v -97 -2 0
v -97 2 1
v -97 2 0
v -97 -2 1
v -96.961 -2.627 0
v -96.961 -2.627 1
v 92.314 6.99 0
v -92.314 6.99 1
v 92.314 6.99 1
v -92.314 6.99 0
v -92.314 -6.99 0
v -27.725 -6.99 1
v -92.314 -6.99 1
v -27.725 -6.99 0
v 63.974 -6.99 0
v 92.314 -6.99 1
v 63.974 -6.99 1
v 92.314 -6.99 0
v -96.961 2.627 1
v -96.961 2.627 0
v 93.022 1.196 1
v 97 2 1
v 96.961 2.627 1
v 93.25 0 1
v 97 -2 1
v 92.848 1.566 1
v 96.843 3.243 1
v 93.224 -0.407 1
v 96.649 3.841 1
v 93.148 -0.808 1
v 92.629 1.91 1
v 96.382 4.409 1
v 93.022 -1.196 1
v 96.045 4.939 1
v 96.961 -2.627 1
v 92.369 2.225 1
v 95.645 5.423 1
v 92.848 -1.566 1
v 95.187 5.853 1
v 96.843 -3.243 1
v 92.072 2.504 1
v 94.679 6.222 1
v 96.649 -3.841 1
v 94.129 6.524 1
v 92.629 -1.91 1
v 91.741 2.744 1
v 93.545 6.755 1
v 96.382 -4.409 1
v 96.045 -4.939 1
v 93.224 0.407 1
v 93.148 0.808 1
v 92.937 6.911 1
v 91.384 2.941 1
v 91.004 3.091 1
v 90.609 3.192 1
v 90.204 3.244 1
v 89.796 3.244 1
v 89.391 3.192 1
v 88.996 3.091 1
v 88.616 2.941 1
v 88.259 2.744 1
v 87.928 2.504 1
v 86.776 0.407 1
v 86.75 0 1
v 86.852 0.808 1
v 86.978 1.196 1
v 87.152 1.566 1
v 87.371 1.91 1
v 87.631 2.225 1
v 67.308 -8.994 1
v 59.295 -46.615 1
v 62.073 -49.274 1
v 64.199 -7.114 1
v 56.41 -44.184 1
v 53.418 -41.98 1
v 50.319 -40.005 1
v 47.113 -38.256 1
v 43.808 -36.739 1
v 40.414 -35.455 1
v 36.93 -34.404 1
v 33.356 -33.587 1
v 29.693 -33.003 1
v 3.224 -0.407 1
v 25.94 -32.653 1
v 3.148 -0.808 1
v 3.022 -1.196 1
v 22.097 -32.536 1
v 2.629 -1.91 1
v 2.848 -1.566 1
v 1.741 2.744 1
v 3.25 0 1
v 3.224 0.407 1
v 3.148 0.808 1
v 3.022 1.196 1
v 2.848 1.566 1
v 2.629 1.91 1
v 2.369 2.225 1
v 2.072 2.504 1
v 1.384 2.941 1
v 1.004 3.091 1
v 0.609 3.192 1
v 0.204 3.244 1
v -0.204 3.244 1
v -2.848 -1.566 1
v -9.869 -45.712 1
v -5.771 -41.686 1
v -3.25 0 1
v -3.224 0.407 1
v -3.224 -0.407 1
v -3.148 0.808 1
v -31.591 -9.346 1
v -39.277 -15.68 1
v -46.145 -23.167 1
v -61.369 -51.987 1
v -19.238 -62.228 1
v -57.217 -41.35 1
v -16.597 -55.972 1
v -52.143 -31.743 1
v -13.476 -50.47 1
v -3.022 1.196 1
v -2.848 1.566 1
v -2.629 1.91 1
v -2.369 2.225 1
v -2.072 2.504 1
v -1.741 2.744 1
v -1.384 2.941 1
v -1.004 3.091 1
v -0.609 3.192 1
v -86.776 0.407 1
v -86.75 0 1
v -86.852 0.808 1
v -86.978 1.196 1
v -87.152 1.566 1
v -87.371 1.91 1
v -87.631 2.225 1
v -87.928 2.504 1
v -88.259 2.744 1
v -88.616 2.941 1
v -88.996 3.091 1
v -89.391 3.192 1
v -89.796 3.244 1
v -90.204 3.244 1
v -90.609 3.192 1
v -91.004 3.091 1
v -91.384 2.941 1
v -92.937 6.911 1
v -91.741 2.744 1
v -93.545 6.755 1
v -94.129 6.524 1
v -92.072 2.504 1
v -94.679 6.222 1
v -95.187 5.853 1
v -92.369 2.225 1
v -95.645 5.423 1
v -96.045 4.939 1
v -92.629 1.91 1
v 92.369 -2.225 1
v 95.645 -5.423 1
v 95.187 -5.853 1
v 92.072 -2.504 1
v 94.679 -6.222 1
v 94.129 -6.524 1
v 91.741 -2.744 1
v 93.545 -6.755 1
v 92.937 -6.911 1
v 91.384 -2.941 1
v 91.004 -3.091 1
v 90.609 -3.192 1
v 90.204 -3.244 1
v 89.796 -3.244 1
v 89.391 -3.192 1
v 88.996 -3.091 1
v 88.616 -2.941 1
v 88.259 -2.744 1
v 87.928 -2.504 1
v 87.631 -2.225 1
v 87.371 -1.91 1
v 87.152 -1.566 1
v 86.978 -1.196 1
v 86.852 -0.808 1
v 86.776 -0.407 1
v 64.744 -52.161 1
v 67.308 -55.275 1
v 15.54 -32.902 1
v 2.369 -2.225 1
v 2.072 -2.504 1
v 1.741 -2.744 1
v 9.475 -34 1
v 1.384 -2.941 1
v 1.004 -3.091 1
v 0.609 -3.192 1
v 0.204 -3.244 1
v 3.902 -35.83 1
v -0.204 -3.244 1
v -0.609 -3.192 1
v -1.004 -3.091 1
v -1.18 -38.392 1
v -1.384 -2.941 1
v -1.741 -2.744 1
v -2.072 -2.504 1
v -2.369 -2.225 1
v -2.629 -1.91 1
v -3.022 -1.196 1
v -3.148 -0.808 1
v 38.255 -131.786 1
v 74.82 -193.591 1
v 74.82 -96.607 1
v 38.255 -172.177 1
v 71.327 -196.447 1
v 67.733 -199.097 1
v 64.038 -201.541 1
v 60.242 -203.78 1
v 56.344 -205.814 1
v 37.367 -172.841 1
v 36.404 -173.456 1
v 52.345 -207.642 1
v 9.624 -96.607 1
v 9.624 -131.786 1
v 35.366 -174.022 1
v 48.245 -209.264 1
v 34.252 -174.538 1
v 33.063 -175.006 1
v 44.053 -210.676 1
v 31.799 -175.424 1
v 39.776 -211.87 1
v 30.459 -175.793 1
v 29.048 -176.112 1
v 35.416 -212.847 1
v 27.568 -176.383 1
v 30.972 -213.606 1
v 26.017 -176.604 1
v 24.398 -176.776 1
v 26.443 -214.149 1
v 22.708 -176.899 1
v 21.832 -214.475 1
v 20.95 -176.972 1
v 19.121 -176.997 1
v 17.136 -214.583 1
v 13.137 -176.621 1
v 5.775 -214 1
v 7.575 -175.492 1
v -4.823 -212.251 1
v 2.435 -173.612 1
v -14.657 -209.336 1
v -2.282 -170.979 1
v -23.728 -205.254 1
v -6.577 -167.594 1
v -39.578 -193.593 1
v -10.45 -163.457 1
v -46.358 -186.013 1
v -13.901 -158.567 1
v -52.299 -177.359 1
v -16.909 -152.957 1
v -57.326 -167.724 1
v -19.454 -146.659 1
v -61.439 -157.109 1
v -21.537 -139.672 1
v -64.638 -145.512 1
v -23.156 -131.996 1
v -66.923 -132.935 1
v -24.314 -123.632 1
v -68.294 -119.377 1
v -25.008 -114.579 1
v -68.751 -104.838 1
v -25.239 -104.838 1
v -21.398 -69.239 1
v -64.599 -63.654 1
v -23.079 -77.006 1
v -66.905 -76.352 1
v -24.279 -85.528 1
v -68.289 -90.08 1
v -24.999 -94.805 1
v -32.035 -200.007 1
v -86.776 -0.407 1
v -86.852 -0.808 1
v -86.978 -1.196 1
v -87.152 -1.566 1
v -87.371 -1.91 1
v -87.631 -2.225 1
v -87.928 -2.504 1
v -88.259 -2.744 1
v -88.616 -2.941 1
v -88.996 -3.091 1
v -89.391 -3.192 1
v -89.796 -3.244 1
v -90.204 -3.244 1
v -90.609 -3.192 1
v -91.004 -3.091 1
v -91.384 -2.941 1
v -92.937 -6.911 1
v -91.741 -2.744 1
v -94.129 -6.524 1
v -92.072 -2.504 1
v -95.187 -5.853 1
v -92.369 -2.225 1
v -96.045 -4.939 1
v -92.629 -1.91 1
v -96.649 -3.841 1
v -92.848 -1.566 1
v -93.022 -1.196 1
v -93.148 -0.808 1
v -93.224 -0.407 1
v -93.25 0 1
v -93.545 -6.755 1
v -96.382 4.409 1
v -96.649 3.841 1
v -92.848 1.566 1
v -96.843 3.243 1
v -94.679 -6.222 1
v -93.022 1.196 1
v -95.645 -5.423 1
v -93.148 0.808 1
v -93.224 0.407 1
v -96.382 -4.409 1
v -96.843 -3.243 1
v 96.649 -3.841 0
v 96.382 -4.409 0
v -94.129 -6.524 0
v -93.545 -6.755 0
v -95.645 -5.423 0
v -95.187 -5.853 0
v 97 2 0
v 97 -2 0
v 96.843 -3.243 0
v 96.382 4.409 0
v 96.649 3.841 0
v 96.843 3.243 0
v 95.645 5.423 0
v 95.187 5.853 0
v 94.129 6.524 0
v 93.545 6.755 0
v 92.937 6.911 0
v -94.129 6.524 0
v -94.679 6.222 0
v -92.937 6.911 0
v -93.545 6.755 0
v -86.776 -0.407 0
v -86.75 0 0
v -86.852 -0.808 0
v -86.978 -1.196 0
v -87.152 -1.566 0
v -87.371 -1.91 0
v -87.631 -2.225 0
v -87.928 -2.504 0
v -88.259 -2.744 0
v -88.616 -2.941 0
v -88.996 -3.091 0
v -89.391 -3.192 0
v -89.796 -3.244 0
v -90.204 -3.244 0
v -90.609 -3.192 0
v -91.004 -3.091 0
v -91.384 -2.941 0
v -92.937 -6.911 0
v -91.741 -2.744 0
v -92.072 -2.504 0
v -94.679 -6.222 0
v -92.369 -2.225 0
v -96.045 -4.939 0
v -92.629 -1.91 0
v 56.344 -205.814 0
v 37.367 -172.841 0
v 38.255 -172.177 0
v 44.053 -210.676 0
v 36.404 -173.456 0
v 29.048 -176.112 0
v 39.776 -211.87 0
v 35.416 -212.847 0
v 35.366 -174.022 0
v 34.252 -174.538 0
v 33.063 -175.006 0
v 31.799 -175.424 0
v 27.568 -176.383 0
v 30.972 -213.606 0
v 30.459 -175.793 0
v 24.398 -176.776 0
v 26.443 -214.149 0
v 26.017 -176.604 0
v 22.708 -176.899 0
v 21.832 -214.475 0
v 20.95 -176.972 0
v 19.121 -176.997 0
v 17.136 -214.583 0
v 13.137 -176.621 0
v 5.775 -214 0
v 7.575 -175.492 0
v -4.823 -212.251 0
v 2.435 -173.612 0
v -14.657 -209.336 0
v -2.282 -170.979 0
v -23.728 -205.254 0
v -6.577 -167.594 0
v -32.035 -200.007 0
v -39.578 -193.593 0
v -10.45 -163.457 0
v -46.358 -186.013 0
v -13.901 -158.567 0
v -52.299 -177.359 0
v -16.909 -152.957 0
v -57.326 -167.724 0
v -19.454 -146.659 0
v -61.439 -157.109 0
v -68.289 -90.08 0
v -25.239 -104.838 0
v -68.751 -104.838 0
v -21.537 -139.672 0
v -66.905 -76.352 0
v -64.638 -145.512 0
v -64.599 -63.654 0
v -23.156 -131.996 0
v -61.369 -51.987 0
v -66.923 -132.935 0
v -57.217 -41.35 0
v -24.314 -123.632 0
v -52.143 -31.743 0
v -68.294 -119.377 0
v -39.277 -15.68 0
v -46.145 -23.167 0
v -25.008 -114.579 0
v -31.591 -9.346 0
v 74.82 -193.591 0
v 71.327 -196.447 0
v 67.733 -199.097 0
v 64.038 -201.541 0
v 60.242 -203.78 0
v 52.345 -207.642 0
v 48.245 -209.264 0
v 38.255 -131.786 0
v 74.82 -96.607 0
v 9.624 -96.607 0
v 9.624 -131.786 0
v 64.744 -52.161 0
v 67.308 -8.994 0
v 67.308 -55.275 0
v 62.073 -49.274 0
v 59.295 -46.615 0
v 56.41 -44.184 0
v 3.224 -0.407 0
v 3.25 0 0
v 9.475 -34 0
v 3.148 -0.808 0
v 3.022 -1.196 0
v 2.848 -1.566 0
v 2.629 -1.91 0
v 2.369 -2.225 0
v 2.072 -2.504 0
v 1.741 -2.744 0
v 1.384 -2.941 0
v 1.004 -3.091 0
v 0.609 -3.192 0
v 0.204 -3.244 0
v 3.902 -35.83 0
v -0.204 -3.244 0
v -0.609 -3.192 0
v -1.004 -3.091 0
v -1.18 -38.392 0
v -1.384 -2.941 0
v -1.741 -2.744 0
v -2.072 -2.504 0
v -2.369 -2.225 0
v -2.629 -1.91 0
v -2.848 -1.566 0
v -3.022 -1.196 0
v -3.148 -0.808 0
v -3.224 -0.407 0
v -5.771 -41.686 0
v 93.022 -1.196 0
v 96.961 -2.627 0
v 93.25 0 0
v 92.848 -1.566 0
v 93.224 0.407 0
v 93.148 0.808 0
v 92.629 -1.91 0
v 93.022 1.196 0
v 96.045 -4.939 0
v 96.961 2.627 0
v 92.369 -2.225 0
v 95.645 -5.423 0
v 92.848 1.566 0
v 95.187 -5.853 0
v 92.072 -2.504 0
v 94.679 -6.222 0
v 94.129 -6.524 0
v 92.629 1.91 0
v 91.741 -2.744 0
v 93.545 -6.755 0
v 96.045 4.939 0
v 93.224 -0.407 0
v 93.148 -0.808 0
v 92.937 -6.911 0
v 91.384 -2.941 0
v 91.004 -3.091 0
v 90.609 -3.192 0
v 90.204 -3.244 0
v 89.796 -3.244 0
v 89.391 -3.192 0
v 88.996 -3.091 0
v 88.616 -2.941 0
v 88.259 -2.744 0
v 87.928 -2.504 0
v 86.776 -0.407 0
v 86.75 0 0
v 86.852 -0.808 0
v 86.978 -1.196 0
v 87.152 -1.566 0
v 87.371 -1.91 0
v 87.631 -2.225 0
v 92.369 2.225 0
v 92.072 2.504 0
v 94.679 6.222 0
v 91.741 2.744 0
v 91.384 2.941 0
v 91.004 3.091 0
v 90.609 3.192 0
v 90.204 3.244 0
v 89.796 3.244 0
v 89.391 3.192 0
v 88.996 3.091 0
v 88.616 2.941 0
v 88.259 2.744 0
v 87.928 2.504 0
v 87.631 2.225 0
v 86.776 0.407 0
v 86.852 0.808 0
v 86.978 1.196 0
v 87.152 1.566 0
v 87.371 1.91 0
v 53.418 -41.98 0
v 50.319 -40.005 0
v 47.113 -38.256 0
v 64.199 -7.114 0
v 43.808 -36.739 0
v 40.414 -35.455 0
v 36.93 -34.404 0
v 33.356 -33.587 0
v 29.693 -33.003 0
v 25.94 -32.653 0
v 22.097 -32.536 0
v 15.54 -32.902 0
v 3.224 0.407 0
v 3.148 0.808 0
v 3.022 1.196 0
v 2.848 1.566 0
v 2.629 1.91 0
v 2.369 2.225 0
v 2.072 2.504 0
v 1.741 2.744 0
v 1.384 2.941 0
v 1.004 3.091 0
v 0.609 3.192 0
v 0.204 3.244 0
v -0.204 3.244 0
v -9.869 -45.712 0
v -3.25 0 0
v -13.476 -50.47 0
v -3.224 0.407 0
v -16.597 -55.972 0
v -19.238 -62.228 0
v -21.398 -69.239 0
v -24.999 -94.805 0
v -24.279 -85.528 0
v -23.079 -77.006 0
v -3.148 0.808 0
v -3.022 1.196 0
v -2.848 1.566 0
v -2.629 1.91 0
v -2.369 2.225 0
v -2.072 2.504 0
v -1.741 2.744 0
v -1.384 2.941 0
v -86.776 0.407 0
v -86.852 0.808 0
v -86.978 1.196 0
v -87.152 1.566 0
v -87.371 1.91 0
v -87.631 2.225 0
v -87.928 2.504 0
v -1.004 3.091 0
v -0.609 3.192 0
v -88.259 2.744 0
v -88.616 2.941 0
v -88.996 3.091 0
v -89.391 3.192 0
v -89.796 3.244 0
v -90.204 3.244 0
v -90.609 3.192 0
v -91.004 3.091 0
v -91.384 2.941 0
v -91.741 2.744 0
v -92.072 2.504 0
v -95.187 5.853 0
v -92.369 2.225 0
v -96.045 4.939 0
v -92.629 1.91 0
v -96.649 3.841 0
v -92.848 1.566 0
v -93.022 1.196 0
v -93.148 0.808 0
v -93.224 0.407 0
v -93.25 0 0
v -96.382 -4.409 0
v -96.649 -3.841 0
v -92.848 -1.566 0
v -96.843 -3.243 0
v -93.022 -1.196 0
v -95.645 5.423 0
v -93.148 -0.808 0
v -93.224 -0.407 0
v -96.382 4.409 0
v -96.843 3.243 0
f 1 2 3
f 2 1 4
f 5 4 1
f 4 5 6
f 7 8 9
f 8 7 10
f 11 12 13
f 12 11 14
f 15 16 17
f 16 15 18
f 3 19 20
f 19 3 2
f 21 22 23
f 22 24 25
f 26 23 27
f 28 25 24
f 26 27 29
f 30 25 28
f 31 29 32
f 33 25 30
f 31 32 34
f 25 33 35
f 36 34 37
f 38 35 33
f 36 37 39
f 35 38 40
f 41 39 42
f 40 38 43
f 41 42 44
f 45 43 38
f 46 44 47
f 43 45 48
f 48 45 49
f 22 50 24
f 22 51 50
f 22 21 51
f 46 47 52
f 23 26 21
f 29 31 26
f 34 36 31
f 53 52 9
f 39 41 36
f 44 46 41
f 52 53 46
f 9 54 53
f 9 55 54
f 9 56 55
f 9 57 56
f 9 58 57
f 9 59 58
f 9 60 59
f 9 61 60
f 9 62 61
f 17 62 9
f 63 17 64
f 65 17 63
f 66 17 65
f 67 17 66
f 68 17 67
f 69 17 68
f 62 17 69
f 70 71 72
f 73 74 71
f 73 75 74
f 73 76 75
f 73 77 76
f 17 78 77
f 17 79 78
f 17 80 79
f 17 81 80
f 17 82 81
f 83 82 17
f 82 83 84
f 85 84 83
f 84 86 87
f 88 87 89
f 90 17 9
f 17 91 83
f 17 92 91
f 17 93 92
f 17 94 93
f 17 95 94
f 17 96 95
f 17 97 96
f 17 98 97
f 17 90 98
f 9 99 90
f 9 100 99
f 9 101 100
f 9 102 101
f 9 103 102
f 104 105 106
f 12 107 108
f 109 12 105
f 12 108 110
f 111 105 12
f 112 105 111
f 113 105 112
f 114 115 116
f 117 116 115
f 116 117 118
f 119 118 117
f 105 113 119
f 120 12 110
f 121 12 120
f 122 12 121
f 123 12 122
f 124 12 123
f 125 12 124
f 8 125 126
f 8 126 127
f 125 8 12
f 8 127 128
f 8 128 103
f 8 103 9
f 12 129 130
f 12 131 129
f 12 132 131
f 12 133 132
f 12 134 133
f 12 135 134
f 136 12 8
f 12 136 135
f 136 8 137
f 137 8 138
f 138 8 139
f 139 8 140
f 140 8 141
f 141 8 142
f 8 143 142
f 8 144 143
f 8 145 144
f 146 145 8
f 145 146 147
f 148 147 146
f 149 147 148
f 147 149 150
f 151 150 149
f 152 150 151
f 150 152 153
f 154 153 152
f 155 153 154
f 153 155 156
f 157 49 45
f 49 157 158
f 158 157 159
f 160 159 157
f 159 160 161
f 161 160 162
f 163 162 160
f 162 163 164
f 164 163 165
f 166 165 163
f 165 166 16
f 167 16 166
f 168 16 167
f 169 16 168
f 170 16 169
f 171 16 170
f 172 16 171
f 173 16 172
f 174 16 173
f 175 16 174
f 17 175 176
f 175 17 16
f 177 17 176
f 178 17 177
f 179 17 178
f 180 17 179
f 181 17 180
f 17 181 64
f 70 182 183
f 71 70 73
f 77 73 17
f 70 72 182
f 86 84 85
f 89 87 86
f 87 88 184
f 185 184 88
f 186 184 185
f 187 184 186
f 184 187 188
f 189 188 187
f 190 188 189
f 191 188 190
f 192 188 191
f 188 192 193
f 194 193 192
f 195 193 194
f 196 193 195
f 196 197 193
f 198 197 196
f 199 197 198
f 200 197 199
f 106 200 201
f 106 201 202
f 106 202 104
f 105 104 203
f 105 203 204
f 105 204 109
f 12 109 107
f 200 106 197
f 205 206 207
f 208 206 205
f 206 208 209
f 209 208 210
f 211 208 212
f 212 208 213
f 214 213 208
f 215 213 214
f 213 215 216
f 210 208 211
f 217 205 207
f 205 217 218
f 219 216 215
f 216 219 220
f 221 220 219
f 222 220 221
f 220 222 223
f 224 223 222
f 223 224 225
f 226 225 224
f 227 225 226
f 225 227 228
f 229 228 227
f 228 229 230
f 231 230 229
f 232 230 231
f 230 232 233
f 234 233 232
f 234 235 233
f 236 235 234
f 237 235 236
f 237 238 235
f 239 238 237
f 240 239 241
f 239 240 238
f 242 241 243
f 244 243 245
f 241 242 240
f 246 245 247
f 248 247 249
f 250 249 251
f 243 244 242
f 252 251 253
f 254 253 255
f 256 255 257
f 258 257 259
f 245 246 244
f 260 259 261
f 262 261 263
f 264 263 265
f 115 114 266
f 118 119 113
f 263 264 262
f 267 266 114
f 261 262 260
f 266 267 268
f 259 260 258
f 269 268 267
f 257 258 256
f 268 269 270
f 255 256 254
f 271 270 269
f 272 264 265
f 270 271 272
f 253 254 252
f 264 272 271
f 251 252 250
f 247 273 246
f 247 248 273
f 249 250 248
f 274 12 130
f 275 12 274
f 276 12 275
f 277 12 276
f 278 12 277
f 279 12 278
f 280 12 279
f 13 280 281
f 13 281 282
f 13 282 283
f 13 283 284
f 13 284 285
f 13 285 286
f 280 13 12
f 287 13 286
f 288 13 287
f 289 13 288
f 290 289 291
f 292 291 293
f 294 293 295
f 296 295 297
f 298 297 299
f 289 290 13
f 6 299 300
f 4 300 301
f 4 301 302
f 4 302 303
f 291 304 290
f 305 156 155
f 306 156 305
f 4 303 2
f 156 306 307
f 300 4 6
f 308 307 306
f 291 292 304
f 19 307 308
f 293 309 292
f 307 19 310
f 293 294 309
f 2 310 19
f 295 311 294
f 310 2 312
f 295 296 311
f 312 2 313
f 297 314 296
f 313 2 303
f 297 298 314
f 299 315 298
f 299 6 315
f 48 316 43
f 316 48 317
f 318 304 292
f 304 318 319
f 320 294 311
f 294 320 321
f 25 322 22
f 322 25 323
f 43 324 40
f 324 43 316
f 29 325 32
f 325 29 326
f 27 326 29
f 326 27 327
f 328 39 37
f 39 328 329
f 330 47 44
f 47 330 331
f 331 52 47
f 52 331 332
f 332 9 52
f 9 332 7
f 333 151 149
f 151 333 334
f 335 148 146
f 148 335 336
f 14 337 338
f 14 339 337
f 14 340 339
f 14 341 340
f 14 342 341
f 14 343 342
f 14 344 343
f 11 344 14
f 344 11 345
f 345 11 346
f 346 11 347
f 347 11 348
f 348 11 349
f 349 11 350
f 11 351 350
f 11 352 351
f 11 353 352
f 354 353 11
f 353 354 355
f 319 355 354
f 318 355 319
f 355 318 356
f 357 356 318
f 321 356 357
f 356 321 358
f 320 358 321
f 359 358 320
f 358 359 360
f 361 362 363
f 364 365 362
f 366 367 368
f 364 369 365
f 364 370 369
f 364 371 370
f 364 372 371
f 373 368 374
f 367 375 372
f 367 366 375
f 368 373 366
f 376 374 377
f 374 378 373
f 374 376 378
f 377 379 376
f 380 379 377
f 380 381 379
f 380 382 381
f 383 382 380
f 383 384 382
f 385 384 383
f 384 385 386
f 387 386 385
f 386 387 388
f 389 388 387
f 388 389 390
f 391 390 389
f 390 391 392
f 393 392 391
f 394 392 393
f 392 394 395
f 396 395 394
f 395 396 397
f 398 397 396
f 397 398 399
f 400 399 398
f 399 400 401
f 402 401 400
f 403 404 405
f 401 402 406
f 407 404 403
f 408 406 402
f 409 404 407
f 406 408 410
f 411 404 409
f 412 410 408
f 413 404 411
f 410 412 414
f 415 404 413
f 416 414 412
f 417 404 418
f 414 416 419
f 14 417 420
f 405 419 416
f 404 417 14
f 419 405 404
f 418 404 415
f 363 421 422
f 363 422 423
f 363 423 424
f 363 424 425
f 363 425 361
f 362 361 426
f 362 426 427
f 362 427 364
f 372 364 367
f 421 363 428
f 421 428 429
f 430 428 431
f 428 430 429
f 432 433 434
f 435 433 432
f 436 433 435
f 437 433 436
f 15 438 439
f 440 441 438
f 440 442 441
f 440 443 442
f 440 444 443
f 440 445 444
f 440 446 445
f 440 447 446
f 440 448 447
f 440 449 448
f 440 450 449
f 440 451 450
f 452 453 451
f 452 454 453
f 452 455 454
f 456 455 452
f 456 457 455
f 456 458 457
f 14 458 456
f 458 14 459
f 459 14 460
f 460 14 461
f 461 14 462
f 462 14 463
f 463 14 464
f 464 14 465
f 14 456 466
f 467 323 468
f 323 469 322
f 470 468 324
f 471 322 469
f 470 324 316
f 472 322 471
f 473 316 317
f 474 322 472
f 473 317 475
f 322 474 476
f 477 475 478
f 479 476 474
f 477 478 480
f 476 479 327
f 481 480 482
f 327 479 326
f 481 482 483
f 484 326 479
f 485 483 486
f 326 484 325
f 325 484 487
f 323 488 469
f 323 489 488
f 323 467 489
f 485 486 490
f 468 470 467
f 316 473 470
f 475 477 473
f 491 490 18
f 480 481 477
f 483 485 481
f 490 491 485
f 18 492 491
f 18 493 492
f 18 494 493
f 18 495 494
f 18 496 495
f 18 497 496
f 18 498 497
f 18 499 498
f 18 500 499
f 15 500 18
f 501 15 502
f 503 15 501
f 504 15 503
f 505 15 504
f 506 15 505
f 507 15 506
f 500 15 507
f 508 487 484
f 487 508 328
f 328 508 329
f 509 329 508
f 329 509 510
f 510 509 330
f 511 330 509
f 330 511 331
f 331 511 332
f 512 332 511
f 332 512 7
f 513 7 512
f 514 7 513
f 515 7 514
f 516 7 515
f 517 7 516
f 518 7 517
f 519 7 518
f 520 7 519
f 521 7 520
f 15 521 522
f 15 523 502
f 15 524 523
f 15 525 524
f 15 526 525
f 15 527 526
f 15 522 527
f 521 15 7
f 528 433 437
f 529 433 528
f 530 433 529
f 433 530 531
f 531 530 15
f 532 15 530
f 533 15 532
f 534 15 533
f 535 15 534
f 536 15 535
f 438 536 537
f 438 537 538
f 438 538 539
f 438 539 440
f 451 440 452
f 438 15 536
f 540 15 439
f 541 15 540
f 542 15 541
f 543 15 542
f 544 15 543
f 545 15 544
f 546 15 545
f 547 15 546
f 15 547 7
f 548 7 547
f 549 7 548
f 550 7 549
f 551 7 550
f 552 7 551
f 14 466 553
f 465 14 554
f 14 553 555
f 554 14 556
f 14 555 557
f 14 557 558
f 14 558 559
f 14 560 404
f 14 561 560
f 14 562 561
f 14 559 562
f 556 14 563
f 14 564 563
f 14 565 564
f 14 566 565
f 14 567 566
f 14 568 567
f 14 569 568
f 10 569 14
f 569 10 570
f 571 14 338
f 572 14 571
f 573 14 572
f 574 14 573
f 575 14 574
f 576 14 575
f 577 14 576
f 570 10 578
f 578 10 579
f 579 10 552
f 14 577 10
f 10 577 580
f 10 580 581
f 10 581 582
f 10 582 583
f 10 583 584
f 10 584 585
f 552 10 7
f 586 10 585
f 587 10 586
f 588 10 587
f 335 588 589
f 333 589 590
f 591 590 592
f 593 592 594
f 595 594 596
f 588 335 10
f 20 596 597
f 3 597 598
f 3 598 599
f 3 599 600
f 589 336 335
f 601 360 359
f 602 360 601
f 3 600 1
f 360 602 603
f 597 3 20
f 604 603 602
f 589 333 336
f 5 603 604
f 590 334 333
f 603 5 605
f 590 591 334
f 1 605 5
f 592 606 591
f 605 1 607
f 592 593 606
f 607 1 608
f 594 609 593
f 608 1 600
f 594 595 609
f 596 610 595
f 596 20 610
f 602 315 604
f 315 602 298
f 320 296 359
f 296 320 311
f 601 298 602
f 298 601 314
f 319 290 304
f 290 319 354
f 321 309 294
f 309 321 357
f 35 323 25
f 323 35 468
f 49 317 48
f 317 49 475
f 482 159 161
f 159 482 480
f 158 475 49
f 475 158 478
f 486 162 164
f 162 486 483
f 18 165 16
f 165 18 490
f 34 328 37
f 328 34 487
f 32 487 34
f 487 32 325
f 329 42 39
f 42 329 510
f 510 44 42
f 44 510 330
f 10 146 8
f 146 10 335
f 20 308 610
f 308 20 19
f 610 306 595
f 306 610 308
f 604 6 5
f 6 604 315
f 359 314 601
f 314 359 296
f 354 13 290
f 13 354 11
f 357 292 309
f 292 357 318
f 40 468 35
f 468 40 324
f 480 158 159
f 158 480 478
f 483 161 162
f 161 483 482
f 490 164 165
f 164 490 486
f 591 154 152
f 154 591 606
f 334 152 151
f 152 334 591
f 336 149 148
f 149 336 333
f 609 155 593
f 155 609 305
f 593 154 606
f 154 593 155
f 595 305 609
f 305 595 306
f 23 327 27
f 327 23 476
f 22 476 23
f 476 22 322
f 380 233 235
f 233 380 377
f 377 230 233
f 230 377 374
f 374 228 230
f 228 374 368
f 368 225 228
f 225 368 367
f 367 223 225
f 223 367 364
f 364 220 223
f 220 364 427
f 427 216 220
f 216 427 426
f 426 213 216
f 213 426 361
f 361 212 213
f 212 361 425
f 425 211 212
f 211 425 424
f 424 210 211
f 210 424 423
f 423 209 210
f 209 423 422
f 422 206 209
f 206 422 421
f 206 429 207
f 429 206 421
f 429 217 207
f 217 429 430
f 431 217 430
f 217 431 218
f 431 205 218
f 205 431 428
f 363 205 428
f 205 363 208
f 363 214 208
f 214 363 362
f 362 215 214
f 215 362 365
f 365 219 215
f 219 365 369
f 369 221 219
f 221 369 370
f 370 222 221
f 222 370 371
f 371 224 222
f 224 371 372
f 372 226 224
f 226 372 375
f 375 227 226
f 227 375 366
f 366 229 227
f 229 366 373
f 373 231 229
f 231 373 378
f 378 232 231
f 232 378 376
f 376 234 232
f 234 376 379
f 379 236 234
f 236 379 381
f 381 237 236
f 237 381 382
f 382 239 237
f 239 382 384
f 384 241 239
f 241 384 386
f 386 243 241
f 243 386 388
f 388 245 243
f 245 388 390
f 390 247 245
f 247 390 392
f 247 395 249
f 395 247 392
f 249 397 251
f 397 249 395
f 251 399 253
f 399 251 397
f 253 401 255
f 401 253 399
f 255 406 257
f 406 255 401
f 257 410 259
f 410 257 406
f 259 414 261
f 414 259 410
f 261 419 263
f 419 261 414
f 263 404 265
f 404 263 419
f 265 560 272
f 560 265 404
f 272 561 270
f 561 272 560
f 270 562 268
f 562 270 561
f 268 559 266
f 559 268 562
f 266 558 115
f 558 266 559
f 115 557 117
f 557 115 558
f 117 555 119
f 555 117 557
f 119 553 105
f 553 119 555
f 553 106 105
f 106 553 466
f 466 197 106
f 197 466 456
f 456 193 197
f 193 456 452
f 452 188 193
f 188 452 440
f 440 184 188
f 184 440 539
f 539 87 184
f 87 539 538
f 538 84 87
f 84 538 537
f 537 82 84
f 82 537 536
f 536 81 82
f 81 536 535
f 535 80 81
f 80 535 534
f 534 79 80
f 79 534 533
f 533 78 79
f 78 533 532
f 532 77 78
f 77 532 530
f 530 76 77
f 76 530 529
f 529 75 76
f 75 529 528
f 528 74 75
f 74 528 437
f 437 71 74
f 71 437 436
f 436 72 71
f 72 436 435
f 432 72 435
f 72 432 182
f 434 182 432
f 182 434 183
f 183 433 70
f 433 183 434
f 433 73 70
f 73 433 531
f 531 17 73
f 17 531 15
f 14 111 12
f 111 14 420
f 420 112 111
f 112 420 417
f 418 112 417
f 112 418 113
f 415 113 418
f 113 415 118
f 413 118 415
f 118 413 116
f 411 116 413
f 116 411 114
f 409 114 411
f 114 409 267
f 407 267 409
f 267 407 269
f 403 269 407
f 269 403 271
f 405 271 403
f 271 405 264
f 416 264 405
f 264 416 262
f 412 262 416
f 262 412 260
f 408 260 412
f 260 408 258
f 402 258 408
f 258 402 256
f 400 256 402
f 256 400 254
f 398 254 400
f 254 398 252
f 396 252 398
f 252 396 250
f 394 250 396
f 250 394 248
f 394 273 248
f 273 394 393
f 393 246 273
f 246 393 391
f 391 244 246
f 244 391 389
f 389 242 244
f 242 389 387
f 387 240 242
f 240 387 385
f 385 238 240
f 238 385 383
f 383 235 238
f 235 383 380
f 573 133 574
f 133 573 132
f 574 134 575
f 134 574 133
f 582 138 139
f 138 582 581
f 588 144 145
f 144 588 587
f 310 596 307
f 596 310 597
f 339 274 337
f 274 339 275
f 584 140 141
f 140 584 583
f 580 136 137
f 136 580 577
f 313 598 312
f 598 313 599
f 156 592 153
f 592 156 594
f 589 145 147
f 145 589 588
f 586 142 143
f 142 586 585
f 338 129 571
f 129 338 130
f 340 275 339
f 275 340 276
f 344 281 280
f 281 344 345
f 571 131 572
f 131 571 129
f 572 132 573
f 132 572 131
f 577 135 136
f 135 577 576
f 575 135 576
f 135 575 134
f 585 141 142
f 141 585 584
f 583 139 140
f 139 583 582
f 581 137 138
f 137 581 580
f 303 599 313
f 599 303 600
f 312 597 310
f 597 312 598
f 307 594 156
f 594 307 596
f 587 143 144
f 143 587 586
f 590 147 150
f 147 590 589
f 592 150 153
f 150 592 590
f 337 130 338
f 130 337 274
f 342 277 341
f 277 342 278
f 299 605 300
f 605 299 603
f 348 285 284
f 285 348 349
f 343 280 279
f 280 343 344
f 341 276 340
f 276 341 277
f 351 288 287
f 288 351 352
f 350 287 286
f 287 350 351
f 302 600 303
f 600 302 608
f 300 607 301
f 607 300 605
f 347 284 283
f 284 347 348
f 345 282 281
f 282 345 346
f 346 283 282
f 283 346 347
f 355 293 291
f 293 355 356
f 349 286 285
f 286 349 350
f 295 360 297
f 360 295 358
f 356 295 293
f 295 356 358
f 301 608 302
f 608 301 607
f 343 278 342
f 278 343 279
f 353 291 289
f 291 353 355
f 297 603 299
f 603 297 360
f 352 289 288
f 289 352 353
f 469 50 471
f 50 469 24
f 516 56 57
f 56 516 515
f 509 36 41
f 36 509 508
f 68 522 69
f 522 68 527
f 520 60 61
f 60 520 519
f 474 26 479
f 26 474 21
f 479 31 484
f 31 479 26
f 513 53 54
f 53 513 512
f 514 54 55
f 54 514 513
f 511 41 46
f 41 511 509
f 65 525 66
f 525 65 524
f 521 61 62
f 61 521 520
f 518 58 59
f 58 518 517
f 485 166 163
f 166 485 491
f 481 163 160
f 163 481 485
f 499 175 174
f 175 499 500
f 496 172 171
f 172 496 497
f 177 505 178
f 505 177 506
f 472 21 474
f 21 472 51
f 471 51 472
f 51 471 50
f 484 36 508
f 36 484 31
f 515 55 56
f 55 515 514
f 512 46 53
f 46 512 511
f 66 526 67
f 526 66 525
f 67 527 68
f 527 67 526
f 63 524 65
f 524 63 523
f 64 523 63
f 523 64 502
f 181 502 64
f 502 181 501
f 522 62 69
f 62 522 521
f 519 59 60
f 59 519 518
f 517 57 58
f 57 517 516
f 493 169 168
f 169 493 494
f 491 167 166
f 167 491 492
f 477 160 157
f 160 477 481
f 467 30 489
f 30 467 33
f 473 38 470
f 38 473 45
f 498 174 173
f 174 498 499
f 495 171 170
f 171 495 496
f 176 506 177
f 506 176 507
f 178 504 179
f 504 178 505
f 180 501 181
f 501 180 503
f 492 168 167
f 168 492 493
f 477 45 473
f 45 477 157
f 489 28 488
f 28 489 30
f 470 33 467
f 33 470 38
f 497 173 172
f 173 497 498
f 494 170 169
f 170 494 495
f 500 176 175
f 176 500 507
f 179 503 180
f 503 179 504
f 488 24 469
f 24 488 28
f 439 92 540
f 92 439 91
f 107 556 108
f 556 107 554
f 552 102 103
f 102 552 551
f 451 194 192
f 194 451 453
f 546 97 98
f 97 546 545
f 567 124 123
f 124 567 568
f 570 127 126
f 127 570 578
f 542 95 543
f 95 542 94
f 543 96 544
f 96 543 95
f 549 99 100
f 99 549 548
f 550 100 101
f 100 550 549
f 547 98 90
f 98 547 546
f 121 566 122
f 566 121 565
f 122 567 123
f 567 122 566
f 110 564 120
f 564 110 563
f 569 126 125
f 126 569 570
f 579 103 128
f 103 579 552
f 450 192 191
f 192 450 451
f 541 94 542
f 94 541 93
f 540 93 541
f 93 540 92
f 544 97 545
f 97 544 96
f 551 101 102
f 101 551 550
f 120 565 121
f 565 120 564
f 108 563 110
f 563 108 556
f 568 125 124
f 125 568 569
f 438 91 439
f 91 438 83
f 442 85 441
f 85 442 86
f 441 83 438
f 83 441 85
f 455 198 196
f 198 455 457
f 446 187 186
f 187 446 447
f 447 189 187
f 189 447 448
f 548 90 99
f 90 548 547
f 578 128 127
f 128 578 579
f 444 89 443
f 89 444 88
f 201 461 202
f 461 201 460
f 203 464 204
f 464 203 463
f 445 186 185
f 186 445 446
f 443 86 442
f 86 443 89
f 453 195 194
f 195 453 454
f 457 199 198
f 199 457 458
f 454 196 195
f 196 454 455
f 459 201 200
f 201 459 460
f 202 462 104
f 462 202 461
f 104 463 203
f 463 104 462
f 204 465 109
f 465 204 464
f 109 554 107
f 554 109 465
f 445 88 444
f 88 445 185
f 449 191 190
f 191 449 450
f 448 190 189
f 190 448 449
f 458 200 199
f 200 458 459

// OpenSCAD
$fn = 50;


difference() {
	union() {
		translate(v = [0, 0, 0]) {
			rotate(a = [0, 0, 0]) {
				hull() {
					translate(v = [-92.0000000000, 2.0000000000, 0]) {
						rotate(a = [0, 0, 0]) {
							translate(v = [0, 0, 0]) {
								rotate(a = [0, 0, 0]) {
									cylinder(h = 1, r = 5);
								}
							}
						}
					}
					translate(v = [92.0000000000, 2.0000000000, 0]) {
						rotate(a = [0, 0, 0]) {
							translate(v = [0, 0, 0]) {
								rotate(a = [0, 0, 0]) {
									cylinder(h = 1, r = 5);
								}
							}
						}
					}
					translate(v = [-92.0000000000, -2.0000000000, 0]) {
						rotate(a = [0, 0, 0]) {
							translate(v = [0, 0, 0]) {
								rotate(a = [0, 0, 0]) {
									cylinder(h = 1, r = 5);
								}
							}
						}
					}
					translate(v = [92.0000000000, -2.0000000000, 0]) {
						rotate(a = [0, 0, 0]) {
							translate(v = [0, 0, 0]) {
								rotate(a = [0, 0, 0]) {
									cylinder(h = 1, r = 5);
								}
							}
						}
					}
				}
			}
		}
		translate(v = [0, 0, 0]) {
			rotate(a = [0, 0, 0]) {
				linear_extrude(height = 1) {
					text(font = "DejaVu Sans Mono:style=Bold", halign = "center", size = 209.0000000000, text = "G", valign = "top");
				}
			}
		}
	}
	union() {
		translate(v = [-90.0000000000, 0.0000000000, -125.0000000000]) {
			rotate(a = [0, 0, 0]) {
				cylinder(h = 250, r = 3.2500000000);
			}
		}
		translate(v = [90.0000000000, 0.0000000000, -125.0000000000]) {
			rotate(a = [0, 0, 0]) {
				cylinder(h = 250, r = 3.2500000000);
			}
		}
		translate(v = [90.0000000000, 0.0000000000, -125.0000000000]) {
			rotate(a = [0, 0, 0]) {
				cylinder(h = 250, r = 3.2500000000);
			}
		}
		translate(v = [0, 0, -125.0000000000]) {
			rotate(a = [0, 0, 0]) {
				cylinder(h = 250, r = 3.2500000000);
			}
		}
	}
}
